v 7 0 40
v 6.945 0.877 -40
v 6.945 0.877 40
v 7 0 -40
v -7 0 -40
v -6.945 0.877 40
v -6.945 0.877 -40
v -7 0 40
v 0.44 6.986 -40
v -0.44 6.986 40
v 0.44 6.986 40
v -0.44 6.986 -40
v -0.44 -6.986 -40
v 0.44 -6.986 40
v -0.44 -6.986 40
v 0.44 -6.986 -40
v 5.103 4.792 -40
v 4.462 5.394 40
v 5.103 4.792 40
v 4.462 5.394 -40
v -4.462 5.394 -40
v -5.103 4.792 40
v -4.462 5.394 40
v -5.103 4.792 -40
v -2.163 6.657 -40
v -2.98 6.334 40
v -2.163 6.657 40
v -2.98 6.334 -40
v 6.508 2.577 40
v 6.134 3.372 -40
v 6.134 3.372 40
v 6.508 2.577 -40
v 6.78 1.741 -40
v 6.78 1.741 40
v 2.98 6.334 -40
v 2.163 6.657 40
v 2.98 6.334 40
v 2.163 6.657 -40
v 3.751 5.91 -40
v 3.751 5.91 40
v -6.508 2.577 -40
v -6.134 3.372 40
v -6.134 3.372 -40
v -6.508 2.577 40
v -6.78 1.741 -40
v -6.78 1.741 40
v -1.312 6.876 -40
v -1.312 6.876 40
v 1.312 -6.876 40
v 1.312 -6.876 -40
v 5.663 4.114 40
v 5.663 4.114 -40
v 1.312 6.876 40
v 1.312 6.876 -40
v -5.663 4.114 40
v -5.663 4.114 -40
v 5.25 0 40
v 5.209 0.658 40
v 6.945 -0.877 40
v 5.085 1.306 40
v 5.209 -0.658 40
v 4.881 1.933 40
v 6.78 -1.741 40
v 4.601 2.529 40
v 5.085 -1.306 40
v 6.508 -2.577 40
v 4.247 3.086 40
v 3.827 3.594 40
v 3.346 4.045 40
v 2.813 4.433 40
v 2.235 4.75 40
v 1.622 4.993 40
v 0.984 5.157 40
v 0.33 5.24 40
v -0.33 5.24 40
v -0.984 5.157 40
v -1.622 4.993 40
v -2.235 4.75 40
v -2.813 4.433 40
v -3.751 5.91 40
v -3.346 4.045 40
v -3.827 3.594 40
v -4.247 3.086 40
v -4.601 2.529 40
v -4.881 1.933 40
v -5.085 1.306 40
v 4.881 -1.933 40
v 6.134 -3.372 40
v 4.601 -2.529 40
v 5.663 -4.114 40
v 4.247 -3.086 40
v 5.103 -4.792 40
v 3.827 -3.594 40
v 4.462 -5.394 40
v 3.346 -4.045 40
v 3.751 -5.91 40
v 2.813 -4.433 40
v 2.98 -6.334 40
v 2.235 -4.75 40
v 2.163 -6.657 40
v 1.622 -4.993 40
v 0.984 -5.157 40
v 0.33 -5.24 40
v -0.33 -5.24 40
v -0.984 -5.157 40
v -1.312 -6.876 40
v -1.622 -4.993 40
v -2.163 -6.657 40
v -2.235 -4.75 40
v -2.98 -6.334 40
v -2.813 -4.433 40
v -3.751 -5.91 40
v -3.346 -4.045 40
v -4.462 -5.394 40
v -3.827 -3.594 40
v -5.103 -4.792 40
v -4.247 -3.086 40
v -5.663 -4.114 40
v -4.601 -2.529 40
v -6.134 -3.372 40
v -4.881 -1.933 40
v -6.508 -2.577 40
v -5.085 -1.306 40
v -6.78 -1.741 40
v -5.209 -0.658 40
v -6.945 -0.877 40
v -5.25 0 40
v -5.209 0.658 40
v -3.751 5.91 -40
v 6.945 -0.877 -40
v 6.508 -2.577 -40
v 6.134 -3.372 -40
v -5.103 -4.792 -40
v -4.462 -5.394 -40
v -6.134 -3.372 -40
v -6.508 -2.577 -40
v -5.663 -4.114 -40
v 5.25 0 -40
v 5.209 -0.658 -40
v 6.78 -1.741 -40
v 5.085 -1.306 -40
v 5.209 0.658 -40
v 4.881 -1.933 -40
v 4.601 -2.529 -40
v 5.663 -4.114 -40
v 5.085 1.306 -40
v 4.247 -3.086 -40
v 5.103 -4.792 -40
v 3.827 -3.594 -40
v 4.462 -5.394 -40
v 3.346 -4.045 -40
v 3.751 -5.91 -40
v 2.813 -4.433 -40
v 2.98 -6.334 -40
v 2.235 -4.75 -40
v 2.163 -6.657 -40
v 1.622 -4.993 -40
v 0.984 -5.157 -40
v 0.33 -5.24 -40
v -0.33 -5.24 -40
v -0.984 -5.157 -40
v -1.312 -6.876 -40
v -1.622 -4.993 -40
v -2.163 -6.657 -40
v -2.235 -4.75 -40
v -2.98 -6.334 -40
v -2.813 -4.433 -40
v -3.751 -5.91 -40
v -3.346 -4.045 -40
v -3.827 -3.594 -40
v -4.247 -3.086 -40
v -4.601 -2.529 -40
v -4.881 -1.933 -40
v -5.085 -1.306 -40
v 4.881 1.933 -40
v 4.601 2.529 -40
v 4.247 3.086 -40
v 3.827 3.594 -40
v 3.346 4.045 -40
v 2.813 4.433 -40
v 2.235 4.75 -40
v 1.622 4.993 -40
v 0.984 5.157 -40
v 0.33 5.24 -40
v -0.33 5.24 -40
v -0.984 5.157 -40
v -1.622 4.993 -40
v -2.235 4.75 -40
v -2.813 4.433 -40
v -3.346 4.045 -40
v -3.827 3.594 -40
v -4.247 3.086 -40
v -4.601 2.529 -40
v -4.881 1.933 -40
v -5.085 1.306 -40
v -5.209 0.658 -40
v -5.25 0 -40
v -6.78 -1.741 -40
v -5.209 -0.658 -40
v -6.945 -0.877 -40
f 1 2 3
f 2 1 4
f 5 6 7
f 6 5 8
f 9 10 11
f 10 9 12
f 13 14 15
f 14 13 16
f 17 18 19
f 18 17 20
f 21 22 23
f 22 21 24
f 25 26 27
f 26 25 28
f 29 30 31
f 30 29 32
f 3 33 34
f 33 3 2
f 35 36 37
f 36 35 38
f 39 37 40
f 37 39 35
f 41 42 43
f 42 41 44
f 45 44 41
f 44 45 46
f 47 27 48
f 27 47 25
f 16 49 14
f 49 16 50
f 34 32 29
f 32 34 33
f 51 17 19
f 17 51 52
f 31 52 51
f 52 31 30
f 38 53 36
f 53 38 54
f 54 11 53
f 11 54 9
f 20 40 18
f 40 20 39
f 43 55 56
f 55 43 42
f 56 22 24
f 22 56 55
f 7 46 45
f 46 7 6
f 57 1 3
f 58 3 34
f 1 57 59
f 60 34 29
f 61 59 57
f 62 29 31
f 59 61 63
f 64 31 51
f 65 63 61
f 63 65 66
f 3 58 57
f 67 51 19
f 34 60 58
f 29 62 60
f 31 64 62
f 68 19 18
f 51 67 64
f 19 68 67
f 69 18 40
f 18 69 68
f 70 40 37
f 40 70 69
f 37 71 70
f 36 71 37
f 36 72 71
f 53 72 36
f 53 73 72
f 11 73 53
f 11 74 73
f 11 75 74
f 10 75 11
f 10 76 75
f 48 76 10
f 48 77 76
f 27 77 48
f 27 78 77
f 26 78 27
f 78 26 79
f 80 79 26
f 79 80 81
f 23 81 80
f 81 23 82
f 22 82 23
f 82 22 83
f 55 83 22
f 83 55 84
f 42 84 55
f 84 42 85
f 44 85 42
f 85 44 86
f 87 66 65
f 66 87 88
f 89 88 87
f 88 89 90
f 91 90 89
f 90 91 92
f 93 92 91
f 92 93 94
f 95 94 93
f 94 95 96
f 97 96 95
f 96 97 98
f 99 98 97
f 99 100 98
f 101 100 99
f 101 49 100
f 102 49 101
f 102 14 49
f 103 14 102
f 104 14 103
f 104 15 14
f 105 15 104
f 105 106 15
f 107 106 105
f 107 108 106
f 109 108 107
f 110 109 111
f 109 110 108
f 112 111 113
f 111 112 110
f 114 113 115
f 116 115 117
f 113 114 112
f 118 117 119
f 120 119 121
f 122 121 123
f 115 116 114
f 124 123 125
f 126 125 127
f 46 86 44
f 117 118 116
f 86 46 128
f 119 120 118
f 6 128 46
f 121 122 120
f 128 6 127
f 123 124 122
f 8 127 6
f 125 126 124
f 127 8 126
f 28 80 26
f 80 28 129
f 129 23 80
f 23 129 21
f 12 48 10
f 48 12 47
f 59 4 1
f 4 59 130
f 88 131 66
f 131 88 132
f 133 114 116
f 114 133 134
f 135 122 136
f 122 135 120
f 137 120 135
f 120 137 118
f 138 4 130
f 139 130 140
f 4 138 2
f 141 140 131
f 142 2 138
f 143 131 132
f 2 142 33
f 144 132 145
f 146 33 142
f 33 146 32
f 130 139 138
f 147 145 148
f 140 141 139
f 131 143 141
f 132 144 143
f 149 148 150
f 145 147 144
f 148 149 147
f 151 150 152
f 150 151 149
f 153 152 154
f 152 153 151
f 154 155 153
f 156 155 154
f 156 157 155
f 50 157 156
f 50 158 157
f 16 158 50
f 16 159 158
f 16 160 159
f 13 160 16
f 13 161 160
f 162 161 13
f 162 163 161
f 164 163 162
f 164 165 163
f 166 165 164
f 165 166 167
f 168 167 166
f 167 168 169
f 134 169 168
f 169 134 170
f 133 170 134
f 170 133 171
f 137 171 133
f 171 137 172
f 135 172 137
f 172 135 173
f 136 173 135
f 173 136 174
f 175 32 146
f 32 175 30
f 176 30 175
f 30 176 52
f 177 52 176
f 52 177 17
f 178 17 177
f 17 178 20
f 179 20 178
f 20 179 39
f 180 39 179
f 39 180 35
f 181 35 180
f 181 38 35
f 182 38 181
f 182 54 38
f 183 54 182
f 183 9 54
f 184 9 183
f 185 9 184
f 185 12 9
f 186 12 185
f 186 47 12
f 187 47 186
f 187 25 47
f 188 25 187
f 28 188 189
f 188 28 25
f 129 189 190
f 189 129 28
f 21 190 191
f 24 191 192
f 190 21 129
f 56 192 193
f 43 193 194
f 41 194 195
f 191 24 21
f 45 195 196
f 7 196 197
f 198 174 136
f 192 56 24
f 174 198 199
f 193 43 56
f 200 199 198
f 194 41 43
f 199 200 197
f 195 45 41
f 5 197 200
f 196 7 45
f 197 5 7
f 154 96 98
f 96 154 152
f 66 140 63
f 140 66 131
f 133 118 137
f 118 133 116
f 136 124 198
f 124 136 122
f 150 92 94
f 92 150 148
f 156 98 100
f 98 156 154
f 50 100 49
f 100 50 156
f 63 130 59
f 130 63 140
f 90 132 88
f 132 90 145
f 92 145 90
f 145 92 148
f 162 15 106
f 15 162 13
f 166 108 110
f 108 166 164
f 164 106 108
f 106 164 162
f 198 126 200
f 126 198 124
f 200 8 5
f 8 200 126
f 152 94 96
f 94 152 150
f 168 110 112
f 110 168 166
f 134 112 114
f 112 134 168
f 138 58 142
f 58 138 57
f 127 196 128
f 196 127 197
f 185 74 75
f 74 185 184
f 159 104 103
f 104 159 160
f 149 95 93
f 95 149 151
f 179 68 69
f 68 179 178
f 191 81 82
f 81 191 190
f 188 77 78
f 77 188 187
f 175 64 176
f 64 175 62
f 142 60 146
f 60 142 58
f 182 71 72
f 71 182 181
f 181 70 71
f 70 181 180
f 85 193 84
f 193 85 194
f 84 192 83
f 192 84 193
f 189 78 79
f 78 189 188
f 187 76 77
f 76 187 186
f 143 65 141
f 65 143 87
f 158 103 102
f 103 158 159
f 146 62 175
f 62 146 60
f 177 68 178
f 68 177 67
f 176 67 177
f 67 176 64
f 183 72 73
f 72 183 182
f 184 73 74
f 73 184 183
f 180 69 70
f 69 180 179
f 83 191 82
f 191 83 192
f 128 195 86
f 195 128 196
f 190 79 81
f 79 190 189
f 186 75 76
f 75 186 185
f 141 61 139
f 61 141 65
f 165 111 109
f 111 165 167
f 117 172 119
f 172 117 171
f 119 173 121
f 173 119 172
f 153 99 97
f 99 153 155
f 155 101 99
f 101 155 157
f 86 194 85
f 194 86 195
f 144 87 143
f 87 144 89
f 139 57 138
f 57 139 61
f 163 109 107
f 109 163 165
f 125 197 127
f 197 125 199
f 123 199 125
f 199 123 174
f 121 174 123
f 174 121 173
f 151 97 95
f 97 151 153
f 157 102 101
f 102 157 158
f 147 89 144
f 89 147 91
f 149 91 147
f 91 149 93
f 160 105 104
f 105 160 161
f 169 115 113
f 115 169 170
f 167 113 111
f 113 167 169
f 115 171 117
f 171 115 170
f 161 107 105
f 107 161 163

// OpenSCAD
$fn = 50;


difference() {
	union() {
		translate(v = [0, 0, -40.0000000000]) {
			cylinder(h = 80, r = 7.0000000000);
		}
	}
	union() {
		translate(v = [0, 0, -100.0000000000]) {
			cylinder(h = 200, r = 5.2500000000);
		}
	}
}
